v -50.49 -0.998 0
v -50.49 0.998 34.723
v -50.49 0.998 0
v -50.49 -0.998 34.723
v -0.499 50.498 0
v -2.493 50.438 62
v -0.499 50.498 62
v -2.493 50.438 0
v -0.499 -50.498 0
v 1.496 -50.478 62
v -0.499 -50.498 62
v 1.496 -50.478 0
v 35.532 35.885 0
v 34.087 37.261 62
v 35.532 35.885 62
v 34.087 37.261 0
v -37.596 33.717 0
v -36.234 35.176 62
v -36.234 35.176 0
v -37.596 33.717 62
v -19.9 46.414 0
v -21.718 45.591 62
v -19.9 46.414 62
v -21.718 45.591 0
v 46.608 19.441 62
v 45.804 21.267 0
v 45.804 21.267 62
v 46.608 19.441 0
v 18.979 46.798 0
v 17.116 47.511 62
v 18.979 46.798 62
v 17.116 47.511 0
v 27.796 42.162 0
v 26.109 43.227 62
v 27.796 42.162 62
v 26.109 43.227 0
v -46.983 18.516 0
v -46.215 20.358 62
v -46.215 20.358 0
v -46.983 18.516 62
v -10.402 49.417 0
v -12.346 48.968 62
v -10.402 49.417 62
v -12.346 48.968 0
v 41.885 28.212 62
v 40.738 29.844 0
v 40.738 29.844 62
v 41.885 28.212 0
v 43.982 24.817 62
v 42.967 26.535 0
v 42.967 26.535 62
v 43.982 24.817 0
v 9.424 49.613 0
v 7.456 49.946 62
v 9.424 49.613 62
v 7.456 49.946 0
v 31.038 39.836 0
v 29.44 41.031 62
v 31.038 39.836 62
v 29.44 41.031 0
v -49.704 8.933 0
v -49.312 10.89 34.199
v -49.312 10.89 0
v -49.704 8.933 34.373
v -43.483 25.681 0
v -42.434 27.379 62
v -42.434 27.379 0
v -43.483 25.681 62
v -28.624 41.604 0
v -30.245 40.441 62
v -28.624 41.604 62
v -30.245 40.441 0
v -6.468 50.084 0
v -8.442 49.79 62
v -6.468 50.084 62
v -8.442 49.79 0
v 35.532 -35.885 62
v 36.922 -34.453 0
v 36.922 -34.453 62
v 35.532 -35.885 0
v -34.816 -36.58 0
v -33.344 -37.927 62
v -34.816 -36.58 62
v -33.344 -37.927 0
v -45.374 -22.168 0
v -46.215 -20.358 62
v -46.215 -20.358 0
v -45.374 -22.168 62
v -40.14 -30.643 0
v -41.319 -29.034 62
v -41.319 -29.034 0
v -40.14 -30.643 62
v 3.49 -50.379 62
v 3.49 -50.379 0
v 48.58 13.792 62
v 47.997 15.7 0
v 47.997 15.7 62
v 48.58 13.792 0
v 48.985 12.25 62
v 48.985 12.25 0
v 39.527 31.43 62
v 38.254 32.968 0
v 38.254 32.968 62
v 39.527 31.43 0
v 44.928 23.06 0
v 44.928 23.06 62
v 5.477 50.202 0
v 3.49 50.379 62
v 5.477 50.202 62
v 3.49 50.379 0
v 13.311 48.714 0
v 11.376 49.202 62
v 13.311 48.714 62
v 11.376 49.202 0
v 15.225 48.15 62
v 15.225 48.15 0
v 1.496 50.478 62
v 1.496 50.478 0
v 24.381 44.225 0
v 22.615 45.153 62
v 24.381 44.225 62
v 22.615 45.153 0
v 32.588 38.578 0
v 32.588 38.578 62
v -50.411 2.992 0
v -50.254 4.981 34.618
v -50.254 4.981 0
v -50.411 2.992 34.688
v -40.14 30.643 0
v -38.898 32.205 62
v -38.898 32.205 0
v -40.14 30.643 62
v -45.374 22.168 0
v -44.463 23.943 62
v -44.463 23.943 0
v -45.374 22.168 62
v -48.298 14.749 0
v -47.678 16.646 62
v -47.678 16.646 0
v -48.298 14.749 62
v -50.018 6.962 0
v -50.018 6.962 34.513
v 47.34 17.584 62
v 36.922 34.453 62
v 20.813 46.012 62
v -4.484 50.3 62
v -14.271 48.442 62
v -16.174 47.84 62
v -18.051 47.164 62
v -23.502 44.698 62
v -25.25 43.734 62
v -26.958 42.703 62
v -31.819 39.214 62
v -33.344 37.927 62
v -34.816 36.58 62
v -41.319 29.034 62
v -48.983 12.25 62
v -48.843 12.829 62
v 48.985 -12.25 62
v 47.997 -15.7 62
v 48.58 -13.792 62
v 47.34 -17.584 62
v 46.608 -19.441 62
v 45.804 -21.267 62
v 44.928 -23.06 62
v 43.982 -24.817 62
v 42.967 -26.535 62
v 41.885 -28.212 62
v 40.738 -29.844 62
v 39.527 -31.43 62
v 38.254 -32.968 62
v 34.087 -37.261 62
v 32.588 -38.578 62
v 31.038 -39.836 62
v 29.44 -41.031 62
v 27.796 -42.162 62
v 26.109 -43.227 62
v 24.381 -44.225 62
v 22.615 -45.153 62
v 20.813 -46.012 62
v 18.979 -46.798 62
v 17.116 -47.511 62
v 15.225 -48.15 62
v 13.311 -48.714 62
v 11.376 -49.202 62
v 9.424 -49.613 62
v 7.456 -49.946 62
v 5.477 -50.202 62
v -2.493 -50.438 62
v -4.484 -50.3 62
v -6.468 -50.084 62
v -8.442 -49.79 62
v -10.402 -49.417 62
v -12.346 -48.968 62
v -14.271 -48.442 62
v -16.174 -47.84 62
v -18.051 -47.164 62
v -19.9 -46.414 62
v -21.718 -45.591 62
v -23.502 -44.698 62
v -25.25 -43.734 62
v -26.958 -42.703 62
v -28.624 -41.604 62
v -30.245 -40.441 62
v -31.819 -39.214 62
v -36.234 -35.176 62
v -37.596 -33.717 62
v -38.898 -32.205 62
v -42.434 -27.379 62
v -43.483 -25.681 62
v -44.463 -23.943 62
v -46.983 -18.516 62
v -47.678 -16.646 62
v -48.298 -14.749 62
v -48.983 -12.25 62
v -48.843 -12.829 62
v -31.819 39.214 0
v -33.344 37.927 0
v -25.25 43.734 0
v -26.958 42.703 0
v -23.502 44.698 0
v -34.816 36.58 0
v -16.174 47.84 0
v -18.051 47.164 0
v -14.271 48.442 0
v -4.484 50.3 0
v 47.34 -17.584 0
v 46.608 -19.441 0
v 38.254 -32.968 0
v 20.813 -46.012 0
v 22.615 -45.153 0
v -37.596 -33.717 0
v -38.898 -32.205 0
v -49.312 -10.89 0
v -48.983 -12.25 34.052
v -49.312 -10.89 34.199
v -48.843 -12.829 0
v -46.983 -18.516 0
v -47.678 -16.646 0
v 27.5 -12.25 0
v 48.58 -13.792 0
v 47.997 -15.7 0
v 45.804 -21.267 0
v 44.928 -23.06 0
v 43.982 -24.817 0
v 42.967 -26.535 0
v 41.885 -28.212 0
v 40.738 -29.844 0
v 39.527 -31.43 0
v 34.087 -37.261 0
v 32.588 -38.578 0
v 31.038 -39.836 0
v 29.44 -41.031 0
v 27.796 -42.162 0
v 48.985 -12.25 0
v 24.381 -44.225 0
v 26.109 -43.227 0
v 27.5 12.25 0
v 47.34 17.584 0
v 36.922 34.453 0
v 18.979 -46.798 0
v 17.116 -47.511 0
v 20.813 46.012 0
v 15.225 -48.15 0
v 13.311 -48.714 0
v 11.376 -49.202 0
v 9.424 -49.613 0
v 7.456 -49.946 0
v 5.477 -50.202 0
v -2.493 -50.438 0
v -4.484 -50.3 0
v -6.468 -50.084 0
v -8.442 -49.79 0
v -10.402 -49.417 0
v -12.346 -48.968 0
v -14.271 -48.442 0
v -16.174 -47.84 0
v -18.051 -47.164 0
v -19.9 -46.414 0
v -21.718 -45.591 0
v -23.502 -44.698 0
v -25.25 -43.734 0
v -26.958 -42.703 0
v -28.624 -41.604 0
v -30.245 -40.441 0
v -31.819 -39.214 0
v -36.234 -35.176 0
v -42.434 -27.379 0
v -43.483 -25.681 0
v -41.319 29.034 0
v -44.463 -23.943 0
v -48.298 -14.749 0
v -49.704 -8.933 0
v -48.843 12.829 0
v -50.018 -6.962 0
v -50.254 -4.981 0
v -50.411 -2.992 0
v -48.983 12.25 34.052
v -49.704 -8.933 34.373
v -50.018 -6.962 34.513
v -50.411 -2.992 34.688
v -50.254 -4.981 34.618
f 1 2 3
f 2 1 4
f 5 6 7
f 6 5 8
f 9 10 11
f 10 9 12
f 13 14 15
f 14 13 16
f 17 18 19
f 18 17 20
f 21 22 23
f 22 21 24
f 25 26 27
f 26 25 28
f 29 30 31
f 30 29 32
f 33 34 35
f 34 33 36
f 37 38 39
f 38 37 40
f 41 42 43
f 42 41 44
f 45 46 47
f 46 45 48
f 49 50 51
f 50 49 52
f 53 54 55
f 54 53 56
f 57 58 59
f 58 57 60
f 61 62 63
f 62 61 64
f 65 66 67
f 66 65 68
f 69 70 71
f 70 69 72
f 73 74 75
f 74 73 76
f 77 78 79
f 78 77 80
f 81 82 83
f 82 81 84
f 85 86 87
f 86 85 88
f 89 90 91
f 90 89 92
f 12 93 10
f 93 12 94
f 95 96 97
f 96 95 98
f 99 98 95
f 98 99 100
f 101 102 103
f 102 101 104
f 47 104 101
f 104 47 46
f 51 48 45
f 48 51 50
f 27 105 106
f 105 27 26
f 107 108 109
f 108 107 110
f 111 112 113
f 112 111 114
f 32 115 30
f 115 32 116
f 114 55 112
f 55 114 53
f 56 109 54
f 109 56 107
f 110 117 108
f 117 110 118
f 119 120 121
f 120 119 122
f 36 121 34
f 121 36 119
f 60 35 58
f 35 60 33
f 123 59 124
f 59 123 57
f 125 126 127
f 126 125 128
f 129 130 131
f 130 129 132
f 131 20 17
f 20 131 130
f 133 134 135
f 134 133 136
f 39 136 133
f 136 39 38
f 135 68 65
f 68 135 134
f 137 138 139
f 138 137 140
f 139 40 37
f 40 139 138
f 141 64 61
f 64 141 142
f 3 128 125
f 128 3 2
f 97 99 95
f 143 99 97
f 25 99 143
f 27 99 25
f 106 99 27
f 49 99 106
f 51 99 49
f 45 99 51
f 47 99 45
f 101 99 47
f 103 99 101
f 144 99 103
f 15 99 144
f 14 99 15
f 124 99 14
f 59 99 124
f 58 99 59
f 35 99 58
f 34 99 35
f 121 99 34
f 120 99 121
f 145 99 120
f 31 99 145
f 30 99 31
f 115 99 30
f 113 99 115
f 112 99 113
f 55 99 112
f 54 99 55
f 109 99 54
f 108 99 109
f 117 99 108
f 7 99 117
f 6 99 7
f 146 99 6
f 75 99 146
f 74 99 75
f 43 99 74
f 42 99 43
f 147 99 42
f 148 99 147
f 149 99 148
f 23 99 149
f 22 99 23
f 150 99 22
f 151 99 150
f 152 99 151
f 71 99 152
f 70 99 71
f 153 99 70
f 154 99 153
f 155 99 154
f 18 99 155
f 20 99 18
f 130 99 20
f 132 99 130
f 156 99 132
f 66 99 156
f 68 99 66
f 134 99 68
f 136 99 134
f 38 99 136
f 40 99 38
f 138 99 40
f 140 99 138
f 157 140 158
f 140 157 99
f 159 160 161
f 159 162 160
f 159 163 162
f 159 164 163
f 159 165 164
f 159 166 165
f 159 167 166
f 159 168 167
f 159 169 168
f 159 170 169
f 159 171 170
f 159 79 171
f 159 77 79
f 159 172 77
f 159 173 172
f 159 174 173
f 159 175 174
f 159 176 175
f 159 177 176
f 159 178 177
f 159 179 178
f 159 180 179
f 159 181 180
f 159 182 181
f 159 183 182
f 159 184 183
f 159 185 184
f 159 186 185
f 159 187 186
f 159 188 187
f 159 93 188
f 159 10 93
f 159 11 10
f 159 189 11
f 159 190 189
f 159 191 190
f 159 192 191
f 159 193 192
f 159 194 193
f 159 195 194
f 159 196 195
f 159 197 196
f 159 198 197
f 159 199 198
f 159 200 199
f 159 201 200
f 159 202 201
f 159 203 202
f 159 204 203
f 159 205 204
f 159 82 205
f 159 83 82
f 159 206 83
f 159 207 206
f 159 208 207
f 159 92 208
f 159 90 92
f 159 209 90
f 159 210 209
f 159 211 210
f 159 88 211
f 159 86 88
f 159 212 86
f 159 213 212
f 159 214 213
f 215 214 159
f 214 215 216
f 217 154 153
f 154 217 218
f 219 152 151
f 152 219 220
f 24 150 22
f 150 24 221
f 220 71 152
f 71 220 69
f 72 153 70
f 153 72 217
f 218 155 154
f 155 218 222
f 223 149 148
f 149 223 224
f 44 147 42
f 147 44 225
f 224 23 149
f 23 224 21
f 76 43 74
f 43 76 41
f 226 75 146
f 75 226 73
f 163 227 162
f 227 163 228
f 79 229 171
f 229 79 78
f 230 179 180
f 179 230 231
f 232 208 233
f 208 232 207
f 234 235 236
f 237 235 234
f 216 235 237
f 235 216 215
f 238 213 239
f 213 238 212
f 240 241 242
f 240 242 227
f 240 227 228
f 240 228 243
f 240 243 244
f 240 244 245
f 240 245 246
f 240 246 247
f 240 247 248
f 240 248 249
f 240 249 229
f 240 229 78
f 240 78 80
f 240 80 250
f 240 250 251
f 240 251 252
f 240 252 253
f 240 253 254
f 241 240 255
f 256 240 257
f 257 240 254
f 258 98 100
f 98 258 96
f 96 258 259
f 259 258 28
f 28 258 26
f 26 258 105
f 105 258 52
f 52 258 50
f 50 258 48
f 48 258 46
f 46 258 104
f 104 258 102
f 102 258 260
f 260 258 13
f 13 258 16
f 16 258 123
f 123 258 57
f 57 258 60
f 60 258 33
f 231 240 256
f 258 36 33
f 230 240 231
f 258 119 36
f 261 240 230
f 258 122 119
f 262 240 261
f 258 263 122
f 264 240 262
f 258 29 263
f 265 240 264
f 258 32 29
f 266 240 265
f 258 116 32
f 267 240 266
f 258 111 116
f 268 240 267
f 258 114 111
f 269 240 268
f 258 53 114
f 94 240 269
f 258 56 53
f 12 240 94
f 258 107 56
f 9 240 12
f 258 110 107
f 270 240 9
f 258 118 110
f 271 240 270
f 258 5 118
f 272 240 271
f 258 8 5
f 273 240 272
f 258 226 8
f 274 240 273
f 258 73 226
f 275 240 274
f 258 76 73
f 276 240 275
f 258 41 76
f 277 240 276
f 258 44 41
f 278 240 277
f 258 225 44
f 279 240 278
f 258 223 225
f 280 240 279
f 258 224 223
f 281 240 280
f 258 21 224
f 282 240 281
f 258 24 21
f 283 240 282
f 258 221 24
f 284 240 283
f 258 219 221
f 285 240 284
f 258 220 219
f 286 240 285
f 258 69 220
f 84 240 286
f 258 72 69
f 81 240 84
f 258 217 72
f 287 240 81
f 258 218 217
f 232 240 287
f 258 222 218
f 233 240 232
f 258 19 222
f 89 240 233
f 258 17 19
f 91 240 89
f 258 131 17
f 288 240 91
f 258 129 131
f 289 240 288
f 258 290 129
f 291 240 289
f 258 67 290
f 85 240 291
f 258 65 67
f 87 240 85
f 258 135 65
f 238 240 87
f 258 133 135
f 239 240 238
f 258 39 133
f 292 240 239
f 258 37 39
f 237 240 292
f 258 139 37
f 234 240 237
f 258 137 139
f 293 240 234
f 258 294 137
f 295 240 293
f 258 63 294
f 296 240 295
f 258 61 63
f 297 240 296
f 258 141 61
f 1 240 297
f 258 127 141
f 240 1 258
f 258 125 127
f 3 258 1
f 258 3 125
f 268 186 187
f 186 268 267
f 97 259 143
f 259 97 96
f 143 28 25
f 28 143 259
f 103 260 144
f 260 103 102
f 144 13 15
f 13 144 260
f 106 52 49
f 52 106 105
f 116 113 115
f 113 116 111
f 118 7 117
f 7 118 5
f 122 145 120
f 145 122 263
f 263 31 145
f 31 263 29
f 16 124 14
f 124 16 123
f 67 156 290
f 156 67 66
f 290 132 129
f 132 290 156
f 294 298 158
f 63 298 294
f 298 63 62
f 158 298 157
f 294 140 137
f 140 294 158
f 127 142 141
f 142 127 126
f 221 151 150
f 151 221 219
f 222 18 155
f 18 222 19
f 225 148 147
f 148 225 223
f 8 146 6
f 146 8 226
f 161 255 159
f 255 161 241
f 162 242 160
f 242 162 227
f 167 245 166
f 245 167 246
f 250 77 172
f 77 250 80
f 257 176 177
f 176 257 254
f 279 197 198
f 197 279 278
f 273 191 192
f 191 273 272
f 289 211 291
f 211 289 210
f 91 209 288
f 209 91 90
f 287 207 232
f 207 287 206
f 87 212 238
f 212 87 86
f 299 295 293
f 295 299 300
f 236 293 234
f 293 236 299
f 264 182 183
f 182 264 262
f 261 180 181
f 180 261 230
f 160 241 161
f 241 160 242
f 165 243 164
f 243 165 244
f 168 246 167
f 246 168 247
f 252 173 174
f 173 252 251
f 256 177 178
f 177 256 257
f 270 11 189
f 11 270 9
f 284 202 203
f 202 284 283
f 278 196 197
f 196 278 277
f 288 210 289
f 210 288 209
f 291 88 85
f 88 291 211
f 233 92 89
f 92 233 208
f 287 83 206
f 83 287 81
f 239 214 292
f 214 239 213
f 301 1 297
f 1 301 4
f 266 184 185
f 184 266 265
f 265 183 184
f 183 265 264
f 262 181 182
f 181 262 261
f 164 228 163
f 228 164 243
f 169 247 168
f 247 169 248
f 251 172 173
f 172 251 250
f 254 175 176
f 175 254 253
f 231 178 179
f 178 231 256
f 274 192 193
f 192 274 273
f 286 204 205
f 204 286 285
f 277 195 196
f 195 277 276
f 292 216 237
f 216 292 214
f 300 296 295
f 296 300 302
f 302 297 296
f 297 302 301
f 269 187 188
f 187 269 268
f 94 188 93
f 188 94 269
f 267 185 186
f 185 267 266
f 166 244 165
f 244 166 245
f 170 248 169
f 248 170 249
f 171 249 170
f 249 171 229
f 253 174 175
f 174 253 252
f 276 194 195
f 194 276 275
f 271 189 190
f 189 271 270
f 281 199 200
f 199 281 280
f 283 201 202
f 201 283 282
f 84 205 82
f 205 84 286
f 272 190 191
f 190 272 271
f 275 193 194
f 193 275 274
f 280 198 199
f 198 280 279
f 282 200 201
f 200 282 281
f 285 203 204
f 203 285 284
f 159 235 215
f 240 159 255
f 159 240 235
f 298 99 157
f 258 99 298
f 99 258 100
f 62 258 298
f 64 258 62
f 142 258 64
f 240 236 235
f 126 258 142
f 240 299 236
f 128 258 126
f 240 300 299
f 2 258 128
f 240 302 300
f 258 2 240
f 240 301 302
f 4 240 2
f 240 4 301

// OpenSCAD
doser_width = 101;
doser_height = 65;
spinner_diameter = 55;
spinner_radius =  spinner_diameter / 2;
grind_window_width = 37;
grind_window_height = 30;
out_width = 24.5;

difference() {
    /*
https://en.wikibooks.org/wiki/OpenSCAD_User_Manual/Other_Language_Features#$fa,_$fs_and_$fn
    */
  $fa=1;
  cylinder(d=doser_width, h=doser_height-3);
  translate([spinner_radius, -out_width/2, 0])
    cube([out_width, out_width, doser_height]);

    /* was cube for full grinder output
  translate([-80, -grind_window_width/2, doser_height-grind_window_height])
    cube([grind_window_width, grind_window_width, grind_window_height]);
  */

  translate([spinner_radius, -out_width/2, 0])
    rotate([0, -66, 0])
    cube([100, out_width, 100]);
}
